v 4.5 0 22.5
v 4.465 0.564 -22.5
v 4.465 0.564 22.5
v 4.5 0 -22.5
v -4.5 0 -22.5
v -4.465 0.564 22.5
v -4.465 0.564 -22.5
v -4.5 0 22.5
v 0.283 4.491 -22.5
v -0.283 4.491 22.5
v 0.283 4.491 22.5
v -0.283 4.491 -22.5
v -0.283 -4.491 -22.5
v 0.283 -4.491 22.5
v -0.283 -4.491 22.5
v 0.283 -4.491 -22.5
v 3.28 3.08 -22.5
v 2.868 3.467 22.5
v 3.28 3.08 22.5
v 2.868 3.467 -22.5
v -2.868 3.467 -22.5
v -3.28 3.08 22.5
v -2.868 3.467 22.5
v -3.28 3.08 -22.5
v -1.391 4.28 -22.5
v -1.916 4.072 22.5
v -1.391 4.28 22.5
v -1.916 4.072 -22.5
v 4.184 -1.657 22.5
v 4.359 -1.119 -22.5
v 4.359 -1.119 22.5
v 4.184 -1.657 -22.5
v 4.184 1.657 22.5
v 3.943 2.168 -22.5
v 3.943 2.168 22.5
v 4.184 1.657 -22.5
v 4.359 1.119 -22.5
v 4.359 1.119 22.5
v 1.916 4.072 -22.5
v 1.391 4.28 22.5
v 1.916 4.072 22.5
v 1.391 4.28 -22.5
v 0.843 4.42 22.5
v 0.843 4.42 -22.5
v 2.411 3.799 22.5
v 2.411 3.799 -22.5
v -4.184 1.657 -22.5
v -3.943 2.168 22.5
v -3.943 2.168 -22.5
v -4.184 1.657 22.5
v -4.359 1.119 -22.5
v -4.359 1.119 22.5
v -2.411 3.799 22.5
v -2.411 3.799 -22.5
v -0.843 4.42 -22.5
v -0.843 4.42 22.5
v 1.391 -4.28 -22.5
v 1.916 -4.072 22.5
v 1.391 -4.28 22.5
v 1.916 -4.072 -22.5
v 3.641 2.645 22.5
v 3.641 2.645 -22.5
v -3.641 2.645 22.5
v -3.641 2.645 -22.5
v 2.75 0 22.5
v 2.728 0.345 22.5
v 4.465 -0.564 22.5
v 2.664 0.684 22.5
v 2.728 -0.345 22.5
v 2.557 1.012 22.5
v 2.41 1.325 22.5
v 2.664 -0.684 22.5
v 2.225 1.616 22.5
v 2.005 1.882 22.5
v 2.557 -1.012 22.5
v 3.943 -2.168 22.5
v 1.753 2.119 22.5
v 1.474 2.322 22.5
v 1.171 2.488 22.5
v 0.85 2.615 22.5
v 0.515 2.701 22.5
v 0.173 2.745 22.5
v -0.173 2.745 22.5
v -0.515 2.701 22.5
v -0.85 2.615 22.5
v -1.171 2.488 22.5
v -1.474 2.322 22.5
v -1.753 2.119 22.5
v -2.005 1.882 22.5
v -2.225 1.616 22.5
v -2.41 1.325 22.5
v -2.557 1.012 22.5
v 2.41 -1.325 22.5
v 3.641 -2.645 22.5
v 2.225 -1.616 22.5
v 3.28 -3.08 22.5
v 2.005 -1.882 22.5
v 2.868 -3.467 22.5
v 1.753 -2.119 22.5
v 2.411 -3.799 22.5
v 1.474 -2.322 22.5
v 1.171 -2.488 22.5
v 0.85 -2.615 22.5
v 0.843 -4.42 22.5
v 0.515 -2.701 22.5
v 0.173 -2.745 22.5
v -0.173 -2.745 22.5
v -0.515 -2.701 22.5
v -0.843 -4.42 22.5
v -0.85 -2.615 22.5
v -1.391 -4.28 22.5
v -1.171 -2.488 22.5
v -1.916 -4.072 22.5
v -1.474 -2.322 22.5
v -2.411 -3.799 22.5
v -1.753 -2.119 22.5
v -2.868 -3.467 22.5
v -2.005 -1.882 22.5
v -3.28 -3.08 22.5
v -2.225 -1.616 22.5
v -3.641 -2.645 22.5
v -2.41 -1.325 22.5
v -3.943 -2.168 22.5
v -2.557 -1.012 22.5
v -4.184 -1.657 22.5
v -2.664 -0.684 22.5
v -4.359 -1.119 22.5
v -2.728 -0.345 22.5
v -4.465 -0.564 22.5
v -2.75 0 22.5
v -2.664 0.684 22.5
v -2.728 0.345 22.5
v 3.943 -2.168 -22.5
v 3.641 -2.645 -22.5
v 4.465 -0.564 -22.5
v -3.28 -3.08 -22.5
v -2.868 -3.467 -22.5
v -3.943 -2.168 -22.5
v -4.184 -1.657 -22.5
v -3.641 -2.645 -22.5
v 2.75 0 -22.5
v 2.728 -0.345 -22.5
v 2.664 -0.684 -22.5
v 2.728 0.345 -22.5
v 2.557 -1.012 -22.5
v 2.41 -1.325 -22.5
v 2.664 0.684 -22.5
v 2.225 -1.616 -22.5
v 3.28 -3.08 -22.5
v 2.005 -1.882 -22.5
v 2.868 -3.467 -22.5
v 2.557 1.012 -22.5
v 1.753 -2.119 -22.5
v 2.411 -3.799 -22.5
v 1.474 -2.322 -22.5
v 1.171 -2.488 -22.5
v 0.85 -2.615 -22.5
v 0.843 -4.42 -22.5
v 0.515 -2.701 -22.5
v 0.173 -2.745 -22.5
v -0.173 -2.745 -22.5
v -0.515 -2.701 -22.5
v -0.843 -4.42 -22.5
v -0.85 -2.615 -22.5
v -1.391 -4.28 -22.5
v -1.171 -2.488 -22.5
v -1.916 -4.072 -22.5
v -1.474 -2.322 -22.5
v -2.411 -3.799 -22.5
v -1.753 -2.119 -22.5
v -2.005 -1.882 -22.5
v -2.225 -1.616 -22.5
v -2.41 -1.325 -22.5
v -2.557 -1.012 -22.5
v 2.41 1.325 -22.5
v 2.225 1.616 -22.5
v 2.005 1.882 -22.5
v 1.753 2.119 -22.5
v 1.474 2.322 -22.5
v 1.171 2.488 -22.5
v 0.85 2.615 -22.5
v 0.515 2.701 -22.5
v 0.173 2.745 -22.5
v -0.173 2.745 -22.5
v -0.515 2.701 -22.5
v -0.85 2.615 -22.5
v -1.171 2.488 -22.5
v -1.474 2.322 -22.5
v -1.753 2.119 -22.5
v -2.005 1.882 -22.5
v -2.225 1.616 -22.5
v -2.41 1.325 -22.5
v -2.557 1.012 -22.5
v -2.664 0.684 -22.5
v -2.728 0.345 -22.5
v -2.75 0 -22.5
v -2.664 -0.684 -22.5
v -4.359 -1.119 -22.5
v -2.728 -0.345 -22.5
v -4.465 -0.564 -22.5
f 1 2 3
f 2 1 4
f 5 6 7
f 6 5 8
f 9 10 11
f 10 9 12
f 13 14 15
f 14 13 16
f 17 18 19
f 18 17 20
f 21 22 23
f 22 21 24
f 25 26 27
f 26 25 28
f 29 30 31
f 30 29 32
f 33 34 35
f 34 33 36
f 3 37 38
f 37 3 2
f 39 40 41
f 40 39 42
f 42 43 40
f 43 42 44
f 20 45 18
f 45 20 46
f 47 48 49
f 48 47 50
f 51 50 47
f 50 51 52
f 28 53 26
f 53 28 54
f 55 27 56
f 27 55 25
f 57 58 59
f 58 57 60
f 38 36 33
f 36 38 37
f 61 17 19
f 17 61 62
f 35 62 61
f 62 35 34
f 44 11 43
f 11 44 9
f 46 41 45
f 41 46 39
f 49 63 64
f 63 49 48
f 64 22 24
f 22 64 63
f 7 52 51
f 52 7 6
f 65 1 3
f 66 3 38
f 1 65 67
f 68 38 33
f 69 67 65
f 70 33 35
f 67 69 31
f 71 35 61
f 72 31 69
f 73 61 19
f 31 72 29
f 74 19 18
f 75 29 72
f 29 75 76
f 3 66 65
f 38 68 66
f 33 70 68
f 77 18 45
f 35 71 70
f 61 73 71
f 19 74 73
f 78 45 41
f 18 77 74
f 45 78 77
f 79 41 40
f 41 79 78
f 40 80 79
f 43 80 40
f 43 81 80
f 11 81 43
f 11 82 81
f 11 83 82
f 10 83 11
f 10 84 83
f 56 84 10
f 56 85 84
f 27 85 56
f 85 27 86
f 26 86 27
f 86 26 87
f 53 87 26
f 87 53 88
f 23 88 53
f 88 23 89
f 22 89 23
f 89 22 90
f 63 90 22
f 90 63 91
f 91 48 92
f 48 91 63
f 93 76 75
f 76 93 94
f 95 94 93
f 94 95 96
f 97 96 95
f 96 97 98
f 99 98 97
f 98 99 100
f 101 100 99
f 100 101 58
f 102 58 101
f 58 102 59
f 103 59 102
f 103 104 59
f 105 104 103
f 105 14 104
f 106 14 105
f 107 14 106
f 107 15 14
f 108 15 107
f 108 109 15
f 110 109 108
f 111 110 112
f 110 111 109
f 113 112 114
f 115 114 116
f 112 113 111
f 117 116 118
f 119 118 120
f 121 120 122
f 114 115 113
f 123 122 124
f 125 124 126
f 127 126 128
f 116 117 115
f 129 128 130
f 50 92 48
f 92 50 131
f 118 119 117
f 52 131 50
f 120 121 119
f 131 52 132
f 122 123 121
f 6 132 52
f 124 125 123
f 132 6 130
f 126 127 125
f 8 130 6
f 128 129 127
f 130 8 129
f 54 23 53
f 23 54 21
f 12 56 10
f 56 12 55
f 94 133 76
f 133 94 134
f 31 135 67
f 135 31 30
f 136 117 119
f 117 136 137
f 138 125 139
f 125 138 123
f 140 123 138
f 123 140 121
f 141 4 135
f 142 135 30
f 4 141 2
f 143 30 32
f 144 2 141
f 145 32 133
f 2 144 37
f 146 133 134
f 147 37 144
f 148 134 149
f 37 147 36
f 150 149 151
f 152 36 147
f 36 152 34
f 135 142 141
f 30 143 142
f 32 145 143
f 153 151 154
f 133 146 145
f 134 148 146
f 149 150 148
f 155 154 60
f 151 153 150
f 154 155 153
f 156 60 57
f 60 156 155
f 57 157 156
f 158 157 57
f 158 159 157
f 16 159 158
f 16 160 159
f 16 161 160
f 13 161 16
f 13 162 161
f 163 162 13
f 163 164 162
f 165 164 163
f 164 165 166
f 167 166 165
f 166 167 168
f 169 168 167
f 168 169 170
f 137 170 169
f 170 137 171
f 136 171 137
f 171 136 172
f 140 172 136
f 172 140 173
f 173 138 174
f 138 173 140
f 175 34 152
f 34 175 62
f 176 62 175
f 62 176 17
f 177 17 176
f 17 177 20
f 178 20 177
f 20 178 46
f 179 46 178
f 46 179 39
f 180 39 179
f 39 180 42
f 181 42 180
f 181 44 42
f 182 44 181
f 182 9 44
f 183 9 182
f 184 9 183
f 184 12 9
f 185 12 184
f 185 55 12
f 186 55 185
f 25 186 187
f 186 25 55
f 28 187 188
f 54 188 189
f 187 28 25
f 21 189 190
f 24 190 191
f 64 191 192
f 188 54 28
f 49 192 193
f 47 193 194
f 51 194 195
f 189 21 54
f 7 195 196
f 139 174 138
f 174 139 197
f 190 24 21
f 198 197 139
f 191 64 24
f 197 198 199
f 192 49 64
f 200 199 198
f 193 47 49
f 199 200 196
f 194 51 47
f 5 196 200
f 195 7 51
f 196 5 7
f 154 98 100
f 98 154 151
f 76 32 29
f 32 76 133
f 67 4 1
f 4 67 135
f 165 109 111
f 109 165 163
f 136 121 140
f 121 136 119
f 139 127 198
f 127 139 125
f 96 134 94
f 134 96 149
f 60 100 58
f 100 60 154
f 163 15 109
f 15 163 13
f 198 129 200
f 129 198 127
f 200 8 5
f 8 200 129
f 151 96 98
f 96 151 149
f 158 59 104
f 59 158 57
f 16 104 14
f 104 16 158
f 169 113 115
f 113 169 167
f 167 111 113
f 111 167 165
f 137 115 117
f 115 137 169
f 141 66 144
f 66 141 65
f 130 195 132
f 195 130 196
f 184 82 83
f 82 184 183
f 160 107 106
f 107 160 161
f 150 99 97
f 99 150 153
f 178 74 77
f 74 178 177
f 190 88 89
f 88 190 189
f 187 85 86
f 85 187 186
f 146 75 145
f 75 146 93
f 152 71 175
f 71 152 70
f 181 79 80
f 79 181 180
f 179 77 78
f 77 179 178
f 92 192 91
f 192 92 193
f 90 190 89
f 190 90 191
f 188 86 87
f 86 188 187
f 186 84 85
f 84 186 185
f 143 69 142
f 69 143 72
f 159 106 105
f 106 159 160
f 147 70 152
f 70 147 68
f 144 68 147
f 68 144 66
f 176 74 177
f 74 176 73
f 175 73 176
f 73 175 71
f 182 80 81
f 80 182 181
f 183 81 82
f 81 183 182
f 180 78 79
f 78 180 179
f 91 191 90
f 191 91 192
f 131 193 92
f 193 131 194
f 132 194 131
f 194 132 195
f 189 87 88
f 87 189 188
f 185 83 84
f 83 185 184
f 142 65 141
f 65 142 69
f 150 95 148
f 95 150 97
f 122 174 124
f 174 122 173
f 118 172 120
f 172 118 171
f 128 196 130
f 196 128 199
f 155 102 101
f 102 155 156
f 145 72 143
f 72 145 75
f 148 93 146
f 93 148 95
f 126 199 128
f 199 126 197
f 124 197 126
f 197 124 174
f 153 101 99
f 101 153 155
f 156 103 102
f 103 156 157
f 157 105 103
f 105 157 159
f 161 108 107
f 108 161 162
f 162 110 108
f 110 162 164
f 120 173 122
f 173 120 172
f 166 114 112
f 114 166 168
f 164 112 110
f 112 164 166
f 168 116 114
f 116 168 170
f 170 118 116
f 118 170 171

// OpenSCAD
$fn = 50;


difference() {
	union() {
		translate(v = [0, 0, -22.5000000000]) {
			cylinder(h = 45, r = 4.5000000000);
		}
	}
	union() {
		translate(v = [0, 0, -100.0000000000]) {
			cylinder(h = 200, r = 2.7500000000);
		}
	}
}
